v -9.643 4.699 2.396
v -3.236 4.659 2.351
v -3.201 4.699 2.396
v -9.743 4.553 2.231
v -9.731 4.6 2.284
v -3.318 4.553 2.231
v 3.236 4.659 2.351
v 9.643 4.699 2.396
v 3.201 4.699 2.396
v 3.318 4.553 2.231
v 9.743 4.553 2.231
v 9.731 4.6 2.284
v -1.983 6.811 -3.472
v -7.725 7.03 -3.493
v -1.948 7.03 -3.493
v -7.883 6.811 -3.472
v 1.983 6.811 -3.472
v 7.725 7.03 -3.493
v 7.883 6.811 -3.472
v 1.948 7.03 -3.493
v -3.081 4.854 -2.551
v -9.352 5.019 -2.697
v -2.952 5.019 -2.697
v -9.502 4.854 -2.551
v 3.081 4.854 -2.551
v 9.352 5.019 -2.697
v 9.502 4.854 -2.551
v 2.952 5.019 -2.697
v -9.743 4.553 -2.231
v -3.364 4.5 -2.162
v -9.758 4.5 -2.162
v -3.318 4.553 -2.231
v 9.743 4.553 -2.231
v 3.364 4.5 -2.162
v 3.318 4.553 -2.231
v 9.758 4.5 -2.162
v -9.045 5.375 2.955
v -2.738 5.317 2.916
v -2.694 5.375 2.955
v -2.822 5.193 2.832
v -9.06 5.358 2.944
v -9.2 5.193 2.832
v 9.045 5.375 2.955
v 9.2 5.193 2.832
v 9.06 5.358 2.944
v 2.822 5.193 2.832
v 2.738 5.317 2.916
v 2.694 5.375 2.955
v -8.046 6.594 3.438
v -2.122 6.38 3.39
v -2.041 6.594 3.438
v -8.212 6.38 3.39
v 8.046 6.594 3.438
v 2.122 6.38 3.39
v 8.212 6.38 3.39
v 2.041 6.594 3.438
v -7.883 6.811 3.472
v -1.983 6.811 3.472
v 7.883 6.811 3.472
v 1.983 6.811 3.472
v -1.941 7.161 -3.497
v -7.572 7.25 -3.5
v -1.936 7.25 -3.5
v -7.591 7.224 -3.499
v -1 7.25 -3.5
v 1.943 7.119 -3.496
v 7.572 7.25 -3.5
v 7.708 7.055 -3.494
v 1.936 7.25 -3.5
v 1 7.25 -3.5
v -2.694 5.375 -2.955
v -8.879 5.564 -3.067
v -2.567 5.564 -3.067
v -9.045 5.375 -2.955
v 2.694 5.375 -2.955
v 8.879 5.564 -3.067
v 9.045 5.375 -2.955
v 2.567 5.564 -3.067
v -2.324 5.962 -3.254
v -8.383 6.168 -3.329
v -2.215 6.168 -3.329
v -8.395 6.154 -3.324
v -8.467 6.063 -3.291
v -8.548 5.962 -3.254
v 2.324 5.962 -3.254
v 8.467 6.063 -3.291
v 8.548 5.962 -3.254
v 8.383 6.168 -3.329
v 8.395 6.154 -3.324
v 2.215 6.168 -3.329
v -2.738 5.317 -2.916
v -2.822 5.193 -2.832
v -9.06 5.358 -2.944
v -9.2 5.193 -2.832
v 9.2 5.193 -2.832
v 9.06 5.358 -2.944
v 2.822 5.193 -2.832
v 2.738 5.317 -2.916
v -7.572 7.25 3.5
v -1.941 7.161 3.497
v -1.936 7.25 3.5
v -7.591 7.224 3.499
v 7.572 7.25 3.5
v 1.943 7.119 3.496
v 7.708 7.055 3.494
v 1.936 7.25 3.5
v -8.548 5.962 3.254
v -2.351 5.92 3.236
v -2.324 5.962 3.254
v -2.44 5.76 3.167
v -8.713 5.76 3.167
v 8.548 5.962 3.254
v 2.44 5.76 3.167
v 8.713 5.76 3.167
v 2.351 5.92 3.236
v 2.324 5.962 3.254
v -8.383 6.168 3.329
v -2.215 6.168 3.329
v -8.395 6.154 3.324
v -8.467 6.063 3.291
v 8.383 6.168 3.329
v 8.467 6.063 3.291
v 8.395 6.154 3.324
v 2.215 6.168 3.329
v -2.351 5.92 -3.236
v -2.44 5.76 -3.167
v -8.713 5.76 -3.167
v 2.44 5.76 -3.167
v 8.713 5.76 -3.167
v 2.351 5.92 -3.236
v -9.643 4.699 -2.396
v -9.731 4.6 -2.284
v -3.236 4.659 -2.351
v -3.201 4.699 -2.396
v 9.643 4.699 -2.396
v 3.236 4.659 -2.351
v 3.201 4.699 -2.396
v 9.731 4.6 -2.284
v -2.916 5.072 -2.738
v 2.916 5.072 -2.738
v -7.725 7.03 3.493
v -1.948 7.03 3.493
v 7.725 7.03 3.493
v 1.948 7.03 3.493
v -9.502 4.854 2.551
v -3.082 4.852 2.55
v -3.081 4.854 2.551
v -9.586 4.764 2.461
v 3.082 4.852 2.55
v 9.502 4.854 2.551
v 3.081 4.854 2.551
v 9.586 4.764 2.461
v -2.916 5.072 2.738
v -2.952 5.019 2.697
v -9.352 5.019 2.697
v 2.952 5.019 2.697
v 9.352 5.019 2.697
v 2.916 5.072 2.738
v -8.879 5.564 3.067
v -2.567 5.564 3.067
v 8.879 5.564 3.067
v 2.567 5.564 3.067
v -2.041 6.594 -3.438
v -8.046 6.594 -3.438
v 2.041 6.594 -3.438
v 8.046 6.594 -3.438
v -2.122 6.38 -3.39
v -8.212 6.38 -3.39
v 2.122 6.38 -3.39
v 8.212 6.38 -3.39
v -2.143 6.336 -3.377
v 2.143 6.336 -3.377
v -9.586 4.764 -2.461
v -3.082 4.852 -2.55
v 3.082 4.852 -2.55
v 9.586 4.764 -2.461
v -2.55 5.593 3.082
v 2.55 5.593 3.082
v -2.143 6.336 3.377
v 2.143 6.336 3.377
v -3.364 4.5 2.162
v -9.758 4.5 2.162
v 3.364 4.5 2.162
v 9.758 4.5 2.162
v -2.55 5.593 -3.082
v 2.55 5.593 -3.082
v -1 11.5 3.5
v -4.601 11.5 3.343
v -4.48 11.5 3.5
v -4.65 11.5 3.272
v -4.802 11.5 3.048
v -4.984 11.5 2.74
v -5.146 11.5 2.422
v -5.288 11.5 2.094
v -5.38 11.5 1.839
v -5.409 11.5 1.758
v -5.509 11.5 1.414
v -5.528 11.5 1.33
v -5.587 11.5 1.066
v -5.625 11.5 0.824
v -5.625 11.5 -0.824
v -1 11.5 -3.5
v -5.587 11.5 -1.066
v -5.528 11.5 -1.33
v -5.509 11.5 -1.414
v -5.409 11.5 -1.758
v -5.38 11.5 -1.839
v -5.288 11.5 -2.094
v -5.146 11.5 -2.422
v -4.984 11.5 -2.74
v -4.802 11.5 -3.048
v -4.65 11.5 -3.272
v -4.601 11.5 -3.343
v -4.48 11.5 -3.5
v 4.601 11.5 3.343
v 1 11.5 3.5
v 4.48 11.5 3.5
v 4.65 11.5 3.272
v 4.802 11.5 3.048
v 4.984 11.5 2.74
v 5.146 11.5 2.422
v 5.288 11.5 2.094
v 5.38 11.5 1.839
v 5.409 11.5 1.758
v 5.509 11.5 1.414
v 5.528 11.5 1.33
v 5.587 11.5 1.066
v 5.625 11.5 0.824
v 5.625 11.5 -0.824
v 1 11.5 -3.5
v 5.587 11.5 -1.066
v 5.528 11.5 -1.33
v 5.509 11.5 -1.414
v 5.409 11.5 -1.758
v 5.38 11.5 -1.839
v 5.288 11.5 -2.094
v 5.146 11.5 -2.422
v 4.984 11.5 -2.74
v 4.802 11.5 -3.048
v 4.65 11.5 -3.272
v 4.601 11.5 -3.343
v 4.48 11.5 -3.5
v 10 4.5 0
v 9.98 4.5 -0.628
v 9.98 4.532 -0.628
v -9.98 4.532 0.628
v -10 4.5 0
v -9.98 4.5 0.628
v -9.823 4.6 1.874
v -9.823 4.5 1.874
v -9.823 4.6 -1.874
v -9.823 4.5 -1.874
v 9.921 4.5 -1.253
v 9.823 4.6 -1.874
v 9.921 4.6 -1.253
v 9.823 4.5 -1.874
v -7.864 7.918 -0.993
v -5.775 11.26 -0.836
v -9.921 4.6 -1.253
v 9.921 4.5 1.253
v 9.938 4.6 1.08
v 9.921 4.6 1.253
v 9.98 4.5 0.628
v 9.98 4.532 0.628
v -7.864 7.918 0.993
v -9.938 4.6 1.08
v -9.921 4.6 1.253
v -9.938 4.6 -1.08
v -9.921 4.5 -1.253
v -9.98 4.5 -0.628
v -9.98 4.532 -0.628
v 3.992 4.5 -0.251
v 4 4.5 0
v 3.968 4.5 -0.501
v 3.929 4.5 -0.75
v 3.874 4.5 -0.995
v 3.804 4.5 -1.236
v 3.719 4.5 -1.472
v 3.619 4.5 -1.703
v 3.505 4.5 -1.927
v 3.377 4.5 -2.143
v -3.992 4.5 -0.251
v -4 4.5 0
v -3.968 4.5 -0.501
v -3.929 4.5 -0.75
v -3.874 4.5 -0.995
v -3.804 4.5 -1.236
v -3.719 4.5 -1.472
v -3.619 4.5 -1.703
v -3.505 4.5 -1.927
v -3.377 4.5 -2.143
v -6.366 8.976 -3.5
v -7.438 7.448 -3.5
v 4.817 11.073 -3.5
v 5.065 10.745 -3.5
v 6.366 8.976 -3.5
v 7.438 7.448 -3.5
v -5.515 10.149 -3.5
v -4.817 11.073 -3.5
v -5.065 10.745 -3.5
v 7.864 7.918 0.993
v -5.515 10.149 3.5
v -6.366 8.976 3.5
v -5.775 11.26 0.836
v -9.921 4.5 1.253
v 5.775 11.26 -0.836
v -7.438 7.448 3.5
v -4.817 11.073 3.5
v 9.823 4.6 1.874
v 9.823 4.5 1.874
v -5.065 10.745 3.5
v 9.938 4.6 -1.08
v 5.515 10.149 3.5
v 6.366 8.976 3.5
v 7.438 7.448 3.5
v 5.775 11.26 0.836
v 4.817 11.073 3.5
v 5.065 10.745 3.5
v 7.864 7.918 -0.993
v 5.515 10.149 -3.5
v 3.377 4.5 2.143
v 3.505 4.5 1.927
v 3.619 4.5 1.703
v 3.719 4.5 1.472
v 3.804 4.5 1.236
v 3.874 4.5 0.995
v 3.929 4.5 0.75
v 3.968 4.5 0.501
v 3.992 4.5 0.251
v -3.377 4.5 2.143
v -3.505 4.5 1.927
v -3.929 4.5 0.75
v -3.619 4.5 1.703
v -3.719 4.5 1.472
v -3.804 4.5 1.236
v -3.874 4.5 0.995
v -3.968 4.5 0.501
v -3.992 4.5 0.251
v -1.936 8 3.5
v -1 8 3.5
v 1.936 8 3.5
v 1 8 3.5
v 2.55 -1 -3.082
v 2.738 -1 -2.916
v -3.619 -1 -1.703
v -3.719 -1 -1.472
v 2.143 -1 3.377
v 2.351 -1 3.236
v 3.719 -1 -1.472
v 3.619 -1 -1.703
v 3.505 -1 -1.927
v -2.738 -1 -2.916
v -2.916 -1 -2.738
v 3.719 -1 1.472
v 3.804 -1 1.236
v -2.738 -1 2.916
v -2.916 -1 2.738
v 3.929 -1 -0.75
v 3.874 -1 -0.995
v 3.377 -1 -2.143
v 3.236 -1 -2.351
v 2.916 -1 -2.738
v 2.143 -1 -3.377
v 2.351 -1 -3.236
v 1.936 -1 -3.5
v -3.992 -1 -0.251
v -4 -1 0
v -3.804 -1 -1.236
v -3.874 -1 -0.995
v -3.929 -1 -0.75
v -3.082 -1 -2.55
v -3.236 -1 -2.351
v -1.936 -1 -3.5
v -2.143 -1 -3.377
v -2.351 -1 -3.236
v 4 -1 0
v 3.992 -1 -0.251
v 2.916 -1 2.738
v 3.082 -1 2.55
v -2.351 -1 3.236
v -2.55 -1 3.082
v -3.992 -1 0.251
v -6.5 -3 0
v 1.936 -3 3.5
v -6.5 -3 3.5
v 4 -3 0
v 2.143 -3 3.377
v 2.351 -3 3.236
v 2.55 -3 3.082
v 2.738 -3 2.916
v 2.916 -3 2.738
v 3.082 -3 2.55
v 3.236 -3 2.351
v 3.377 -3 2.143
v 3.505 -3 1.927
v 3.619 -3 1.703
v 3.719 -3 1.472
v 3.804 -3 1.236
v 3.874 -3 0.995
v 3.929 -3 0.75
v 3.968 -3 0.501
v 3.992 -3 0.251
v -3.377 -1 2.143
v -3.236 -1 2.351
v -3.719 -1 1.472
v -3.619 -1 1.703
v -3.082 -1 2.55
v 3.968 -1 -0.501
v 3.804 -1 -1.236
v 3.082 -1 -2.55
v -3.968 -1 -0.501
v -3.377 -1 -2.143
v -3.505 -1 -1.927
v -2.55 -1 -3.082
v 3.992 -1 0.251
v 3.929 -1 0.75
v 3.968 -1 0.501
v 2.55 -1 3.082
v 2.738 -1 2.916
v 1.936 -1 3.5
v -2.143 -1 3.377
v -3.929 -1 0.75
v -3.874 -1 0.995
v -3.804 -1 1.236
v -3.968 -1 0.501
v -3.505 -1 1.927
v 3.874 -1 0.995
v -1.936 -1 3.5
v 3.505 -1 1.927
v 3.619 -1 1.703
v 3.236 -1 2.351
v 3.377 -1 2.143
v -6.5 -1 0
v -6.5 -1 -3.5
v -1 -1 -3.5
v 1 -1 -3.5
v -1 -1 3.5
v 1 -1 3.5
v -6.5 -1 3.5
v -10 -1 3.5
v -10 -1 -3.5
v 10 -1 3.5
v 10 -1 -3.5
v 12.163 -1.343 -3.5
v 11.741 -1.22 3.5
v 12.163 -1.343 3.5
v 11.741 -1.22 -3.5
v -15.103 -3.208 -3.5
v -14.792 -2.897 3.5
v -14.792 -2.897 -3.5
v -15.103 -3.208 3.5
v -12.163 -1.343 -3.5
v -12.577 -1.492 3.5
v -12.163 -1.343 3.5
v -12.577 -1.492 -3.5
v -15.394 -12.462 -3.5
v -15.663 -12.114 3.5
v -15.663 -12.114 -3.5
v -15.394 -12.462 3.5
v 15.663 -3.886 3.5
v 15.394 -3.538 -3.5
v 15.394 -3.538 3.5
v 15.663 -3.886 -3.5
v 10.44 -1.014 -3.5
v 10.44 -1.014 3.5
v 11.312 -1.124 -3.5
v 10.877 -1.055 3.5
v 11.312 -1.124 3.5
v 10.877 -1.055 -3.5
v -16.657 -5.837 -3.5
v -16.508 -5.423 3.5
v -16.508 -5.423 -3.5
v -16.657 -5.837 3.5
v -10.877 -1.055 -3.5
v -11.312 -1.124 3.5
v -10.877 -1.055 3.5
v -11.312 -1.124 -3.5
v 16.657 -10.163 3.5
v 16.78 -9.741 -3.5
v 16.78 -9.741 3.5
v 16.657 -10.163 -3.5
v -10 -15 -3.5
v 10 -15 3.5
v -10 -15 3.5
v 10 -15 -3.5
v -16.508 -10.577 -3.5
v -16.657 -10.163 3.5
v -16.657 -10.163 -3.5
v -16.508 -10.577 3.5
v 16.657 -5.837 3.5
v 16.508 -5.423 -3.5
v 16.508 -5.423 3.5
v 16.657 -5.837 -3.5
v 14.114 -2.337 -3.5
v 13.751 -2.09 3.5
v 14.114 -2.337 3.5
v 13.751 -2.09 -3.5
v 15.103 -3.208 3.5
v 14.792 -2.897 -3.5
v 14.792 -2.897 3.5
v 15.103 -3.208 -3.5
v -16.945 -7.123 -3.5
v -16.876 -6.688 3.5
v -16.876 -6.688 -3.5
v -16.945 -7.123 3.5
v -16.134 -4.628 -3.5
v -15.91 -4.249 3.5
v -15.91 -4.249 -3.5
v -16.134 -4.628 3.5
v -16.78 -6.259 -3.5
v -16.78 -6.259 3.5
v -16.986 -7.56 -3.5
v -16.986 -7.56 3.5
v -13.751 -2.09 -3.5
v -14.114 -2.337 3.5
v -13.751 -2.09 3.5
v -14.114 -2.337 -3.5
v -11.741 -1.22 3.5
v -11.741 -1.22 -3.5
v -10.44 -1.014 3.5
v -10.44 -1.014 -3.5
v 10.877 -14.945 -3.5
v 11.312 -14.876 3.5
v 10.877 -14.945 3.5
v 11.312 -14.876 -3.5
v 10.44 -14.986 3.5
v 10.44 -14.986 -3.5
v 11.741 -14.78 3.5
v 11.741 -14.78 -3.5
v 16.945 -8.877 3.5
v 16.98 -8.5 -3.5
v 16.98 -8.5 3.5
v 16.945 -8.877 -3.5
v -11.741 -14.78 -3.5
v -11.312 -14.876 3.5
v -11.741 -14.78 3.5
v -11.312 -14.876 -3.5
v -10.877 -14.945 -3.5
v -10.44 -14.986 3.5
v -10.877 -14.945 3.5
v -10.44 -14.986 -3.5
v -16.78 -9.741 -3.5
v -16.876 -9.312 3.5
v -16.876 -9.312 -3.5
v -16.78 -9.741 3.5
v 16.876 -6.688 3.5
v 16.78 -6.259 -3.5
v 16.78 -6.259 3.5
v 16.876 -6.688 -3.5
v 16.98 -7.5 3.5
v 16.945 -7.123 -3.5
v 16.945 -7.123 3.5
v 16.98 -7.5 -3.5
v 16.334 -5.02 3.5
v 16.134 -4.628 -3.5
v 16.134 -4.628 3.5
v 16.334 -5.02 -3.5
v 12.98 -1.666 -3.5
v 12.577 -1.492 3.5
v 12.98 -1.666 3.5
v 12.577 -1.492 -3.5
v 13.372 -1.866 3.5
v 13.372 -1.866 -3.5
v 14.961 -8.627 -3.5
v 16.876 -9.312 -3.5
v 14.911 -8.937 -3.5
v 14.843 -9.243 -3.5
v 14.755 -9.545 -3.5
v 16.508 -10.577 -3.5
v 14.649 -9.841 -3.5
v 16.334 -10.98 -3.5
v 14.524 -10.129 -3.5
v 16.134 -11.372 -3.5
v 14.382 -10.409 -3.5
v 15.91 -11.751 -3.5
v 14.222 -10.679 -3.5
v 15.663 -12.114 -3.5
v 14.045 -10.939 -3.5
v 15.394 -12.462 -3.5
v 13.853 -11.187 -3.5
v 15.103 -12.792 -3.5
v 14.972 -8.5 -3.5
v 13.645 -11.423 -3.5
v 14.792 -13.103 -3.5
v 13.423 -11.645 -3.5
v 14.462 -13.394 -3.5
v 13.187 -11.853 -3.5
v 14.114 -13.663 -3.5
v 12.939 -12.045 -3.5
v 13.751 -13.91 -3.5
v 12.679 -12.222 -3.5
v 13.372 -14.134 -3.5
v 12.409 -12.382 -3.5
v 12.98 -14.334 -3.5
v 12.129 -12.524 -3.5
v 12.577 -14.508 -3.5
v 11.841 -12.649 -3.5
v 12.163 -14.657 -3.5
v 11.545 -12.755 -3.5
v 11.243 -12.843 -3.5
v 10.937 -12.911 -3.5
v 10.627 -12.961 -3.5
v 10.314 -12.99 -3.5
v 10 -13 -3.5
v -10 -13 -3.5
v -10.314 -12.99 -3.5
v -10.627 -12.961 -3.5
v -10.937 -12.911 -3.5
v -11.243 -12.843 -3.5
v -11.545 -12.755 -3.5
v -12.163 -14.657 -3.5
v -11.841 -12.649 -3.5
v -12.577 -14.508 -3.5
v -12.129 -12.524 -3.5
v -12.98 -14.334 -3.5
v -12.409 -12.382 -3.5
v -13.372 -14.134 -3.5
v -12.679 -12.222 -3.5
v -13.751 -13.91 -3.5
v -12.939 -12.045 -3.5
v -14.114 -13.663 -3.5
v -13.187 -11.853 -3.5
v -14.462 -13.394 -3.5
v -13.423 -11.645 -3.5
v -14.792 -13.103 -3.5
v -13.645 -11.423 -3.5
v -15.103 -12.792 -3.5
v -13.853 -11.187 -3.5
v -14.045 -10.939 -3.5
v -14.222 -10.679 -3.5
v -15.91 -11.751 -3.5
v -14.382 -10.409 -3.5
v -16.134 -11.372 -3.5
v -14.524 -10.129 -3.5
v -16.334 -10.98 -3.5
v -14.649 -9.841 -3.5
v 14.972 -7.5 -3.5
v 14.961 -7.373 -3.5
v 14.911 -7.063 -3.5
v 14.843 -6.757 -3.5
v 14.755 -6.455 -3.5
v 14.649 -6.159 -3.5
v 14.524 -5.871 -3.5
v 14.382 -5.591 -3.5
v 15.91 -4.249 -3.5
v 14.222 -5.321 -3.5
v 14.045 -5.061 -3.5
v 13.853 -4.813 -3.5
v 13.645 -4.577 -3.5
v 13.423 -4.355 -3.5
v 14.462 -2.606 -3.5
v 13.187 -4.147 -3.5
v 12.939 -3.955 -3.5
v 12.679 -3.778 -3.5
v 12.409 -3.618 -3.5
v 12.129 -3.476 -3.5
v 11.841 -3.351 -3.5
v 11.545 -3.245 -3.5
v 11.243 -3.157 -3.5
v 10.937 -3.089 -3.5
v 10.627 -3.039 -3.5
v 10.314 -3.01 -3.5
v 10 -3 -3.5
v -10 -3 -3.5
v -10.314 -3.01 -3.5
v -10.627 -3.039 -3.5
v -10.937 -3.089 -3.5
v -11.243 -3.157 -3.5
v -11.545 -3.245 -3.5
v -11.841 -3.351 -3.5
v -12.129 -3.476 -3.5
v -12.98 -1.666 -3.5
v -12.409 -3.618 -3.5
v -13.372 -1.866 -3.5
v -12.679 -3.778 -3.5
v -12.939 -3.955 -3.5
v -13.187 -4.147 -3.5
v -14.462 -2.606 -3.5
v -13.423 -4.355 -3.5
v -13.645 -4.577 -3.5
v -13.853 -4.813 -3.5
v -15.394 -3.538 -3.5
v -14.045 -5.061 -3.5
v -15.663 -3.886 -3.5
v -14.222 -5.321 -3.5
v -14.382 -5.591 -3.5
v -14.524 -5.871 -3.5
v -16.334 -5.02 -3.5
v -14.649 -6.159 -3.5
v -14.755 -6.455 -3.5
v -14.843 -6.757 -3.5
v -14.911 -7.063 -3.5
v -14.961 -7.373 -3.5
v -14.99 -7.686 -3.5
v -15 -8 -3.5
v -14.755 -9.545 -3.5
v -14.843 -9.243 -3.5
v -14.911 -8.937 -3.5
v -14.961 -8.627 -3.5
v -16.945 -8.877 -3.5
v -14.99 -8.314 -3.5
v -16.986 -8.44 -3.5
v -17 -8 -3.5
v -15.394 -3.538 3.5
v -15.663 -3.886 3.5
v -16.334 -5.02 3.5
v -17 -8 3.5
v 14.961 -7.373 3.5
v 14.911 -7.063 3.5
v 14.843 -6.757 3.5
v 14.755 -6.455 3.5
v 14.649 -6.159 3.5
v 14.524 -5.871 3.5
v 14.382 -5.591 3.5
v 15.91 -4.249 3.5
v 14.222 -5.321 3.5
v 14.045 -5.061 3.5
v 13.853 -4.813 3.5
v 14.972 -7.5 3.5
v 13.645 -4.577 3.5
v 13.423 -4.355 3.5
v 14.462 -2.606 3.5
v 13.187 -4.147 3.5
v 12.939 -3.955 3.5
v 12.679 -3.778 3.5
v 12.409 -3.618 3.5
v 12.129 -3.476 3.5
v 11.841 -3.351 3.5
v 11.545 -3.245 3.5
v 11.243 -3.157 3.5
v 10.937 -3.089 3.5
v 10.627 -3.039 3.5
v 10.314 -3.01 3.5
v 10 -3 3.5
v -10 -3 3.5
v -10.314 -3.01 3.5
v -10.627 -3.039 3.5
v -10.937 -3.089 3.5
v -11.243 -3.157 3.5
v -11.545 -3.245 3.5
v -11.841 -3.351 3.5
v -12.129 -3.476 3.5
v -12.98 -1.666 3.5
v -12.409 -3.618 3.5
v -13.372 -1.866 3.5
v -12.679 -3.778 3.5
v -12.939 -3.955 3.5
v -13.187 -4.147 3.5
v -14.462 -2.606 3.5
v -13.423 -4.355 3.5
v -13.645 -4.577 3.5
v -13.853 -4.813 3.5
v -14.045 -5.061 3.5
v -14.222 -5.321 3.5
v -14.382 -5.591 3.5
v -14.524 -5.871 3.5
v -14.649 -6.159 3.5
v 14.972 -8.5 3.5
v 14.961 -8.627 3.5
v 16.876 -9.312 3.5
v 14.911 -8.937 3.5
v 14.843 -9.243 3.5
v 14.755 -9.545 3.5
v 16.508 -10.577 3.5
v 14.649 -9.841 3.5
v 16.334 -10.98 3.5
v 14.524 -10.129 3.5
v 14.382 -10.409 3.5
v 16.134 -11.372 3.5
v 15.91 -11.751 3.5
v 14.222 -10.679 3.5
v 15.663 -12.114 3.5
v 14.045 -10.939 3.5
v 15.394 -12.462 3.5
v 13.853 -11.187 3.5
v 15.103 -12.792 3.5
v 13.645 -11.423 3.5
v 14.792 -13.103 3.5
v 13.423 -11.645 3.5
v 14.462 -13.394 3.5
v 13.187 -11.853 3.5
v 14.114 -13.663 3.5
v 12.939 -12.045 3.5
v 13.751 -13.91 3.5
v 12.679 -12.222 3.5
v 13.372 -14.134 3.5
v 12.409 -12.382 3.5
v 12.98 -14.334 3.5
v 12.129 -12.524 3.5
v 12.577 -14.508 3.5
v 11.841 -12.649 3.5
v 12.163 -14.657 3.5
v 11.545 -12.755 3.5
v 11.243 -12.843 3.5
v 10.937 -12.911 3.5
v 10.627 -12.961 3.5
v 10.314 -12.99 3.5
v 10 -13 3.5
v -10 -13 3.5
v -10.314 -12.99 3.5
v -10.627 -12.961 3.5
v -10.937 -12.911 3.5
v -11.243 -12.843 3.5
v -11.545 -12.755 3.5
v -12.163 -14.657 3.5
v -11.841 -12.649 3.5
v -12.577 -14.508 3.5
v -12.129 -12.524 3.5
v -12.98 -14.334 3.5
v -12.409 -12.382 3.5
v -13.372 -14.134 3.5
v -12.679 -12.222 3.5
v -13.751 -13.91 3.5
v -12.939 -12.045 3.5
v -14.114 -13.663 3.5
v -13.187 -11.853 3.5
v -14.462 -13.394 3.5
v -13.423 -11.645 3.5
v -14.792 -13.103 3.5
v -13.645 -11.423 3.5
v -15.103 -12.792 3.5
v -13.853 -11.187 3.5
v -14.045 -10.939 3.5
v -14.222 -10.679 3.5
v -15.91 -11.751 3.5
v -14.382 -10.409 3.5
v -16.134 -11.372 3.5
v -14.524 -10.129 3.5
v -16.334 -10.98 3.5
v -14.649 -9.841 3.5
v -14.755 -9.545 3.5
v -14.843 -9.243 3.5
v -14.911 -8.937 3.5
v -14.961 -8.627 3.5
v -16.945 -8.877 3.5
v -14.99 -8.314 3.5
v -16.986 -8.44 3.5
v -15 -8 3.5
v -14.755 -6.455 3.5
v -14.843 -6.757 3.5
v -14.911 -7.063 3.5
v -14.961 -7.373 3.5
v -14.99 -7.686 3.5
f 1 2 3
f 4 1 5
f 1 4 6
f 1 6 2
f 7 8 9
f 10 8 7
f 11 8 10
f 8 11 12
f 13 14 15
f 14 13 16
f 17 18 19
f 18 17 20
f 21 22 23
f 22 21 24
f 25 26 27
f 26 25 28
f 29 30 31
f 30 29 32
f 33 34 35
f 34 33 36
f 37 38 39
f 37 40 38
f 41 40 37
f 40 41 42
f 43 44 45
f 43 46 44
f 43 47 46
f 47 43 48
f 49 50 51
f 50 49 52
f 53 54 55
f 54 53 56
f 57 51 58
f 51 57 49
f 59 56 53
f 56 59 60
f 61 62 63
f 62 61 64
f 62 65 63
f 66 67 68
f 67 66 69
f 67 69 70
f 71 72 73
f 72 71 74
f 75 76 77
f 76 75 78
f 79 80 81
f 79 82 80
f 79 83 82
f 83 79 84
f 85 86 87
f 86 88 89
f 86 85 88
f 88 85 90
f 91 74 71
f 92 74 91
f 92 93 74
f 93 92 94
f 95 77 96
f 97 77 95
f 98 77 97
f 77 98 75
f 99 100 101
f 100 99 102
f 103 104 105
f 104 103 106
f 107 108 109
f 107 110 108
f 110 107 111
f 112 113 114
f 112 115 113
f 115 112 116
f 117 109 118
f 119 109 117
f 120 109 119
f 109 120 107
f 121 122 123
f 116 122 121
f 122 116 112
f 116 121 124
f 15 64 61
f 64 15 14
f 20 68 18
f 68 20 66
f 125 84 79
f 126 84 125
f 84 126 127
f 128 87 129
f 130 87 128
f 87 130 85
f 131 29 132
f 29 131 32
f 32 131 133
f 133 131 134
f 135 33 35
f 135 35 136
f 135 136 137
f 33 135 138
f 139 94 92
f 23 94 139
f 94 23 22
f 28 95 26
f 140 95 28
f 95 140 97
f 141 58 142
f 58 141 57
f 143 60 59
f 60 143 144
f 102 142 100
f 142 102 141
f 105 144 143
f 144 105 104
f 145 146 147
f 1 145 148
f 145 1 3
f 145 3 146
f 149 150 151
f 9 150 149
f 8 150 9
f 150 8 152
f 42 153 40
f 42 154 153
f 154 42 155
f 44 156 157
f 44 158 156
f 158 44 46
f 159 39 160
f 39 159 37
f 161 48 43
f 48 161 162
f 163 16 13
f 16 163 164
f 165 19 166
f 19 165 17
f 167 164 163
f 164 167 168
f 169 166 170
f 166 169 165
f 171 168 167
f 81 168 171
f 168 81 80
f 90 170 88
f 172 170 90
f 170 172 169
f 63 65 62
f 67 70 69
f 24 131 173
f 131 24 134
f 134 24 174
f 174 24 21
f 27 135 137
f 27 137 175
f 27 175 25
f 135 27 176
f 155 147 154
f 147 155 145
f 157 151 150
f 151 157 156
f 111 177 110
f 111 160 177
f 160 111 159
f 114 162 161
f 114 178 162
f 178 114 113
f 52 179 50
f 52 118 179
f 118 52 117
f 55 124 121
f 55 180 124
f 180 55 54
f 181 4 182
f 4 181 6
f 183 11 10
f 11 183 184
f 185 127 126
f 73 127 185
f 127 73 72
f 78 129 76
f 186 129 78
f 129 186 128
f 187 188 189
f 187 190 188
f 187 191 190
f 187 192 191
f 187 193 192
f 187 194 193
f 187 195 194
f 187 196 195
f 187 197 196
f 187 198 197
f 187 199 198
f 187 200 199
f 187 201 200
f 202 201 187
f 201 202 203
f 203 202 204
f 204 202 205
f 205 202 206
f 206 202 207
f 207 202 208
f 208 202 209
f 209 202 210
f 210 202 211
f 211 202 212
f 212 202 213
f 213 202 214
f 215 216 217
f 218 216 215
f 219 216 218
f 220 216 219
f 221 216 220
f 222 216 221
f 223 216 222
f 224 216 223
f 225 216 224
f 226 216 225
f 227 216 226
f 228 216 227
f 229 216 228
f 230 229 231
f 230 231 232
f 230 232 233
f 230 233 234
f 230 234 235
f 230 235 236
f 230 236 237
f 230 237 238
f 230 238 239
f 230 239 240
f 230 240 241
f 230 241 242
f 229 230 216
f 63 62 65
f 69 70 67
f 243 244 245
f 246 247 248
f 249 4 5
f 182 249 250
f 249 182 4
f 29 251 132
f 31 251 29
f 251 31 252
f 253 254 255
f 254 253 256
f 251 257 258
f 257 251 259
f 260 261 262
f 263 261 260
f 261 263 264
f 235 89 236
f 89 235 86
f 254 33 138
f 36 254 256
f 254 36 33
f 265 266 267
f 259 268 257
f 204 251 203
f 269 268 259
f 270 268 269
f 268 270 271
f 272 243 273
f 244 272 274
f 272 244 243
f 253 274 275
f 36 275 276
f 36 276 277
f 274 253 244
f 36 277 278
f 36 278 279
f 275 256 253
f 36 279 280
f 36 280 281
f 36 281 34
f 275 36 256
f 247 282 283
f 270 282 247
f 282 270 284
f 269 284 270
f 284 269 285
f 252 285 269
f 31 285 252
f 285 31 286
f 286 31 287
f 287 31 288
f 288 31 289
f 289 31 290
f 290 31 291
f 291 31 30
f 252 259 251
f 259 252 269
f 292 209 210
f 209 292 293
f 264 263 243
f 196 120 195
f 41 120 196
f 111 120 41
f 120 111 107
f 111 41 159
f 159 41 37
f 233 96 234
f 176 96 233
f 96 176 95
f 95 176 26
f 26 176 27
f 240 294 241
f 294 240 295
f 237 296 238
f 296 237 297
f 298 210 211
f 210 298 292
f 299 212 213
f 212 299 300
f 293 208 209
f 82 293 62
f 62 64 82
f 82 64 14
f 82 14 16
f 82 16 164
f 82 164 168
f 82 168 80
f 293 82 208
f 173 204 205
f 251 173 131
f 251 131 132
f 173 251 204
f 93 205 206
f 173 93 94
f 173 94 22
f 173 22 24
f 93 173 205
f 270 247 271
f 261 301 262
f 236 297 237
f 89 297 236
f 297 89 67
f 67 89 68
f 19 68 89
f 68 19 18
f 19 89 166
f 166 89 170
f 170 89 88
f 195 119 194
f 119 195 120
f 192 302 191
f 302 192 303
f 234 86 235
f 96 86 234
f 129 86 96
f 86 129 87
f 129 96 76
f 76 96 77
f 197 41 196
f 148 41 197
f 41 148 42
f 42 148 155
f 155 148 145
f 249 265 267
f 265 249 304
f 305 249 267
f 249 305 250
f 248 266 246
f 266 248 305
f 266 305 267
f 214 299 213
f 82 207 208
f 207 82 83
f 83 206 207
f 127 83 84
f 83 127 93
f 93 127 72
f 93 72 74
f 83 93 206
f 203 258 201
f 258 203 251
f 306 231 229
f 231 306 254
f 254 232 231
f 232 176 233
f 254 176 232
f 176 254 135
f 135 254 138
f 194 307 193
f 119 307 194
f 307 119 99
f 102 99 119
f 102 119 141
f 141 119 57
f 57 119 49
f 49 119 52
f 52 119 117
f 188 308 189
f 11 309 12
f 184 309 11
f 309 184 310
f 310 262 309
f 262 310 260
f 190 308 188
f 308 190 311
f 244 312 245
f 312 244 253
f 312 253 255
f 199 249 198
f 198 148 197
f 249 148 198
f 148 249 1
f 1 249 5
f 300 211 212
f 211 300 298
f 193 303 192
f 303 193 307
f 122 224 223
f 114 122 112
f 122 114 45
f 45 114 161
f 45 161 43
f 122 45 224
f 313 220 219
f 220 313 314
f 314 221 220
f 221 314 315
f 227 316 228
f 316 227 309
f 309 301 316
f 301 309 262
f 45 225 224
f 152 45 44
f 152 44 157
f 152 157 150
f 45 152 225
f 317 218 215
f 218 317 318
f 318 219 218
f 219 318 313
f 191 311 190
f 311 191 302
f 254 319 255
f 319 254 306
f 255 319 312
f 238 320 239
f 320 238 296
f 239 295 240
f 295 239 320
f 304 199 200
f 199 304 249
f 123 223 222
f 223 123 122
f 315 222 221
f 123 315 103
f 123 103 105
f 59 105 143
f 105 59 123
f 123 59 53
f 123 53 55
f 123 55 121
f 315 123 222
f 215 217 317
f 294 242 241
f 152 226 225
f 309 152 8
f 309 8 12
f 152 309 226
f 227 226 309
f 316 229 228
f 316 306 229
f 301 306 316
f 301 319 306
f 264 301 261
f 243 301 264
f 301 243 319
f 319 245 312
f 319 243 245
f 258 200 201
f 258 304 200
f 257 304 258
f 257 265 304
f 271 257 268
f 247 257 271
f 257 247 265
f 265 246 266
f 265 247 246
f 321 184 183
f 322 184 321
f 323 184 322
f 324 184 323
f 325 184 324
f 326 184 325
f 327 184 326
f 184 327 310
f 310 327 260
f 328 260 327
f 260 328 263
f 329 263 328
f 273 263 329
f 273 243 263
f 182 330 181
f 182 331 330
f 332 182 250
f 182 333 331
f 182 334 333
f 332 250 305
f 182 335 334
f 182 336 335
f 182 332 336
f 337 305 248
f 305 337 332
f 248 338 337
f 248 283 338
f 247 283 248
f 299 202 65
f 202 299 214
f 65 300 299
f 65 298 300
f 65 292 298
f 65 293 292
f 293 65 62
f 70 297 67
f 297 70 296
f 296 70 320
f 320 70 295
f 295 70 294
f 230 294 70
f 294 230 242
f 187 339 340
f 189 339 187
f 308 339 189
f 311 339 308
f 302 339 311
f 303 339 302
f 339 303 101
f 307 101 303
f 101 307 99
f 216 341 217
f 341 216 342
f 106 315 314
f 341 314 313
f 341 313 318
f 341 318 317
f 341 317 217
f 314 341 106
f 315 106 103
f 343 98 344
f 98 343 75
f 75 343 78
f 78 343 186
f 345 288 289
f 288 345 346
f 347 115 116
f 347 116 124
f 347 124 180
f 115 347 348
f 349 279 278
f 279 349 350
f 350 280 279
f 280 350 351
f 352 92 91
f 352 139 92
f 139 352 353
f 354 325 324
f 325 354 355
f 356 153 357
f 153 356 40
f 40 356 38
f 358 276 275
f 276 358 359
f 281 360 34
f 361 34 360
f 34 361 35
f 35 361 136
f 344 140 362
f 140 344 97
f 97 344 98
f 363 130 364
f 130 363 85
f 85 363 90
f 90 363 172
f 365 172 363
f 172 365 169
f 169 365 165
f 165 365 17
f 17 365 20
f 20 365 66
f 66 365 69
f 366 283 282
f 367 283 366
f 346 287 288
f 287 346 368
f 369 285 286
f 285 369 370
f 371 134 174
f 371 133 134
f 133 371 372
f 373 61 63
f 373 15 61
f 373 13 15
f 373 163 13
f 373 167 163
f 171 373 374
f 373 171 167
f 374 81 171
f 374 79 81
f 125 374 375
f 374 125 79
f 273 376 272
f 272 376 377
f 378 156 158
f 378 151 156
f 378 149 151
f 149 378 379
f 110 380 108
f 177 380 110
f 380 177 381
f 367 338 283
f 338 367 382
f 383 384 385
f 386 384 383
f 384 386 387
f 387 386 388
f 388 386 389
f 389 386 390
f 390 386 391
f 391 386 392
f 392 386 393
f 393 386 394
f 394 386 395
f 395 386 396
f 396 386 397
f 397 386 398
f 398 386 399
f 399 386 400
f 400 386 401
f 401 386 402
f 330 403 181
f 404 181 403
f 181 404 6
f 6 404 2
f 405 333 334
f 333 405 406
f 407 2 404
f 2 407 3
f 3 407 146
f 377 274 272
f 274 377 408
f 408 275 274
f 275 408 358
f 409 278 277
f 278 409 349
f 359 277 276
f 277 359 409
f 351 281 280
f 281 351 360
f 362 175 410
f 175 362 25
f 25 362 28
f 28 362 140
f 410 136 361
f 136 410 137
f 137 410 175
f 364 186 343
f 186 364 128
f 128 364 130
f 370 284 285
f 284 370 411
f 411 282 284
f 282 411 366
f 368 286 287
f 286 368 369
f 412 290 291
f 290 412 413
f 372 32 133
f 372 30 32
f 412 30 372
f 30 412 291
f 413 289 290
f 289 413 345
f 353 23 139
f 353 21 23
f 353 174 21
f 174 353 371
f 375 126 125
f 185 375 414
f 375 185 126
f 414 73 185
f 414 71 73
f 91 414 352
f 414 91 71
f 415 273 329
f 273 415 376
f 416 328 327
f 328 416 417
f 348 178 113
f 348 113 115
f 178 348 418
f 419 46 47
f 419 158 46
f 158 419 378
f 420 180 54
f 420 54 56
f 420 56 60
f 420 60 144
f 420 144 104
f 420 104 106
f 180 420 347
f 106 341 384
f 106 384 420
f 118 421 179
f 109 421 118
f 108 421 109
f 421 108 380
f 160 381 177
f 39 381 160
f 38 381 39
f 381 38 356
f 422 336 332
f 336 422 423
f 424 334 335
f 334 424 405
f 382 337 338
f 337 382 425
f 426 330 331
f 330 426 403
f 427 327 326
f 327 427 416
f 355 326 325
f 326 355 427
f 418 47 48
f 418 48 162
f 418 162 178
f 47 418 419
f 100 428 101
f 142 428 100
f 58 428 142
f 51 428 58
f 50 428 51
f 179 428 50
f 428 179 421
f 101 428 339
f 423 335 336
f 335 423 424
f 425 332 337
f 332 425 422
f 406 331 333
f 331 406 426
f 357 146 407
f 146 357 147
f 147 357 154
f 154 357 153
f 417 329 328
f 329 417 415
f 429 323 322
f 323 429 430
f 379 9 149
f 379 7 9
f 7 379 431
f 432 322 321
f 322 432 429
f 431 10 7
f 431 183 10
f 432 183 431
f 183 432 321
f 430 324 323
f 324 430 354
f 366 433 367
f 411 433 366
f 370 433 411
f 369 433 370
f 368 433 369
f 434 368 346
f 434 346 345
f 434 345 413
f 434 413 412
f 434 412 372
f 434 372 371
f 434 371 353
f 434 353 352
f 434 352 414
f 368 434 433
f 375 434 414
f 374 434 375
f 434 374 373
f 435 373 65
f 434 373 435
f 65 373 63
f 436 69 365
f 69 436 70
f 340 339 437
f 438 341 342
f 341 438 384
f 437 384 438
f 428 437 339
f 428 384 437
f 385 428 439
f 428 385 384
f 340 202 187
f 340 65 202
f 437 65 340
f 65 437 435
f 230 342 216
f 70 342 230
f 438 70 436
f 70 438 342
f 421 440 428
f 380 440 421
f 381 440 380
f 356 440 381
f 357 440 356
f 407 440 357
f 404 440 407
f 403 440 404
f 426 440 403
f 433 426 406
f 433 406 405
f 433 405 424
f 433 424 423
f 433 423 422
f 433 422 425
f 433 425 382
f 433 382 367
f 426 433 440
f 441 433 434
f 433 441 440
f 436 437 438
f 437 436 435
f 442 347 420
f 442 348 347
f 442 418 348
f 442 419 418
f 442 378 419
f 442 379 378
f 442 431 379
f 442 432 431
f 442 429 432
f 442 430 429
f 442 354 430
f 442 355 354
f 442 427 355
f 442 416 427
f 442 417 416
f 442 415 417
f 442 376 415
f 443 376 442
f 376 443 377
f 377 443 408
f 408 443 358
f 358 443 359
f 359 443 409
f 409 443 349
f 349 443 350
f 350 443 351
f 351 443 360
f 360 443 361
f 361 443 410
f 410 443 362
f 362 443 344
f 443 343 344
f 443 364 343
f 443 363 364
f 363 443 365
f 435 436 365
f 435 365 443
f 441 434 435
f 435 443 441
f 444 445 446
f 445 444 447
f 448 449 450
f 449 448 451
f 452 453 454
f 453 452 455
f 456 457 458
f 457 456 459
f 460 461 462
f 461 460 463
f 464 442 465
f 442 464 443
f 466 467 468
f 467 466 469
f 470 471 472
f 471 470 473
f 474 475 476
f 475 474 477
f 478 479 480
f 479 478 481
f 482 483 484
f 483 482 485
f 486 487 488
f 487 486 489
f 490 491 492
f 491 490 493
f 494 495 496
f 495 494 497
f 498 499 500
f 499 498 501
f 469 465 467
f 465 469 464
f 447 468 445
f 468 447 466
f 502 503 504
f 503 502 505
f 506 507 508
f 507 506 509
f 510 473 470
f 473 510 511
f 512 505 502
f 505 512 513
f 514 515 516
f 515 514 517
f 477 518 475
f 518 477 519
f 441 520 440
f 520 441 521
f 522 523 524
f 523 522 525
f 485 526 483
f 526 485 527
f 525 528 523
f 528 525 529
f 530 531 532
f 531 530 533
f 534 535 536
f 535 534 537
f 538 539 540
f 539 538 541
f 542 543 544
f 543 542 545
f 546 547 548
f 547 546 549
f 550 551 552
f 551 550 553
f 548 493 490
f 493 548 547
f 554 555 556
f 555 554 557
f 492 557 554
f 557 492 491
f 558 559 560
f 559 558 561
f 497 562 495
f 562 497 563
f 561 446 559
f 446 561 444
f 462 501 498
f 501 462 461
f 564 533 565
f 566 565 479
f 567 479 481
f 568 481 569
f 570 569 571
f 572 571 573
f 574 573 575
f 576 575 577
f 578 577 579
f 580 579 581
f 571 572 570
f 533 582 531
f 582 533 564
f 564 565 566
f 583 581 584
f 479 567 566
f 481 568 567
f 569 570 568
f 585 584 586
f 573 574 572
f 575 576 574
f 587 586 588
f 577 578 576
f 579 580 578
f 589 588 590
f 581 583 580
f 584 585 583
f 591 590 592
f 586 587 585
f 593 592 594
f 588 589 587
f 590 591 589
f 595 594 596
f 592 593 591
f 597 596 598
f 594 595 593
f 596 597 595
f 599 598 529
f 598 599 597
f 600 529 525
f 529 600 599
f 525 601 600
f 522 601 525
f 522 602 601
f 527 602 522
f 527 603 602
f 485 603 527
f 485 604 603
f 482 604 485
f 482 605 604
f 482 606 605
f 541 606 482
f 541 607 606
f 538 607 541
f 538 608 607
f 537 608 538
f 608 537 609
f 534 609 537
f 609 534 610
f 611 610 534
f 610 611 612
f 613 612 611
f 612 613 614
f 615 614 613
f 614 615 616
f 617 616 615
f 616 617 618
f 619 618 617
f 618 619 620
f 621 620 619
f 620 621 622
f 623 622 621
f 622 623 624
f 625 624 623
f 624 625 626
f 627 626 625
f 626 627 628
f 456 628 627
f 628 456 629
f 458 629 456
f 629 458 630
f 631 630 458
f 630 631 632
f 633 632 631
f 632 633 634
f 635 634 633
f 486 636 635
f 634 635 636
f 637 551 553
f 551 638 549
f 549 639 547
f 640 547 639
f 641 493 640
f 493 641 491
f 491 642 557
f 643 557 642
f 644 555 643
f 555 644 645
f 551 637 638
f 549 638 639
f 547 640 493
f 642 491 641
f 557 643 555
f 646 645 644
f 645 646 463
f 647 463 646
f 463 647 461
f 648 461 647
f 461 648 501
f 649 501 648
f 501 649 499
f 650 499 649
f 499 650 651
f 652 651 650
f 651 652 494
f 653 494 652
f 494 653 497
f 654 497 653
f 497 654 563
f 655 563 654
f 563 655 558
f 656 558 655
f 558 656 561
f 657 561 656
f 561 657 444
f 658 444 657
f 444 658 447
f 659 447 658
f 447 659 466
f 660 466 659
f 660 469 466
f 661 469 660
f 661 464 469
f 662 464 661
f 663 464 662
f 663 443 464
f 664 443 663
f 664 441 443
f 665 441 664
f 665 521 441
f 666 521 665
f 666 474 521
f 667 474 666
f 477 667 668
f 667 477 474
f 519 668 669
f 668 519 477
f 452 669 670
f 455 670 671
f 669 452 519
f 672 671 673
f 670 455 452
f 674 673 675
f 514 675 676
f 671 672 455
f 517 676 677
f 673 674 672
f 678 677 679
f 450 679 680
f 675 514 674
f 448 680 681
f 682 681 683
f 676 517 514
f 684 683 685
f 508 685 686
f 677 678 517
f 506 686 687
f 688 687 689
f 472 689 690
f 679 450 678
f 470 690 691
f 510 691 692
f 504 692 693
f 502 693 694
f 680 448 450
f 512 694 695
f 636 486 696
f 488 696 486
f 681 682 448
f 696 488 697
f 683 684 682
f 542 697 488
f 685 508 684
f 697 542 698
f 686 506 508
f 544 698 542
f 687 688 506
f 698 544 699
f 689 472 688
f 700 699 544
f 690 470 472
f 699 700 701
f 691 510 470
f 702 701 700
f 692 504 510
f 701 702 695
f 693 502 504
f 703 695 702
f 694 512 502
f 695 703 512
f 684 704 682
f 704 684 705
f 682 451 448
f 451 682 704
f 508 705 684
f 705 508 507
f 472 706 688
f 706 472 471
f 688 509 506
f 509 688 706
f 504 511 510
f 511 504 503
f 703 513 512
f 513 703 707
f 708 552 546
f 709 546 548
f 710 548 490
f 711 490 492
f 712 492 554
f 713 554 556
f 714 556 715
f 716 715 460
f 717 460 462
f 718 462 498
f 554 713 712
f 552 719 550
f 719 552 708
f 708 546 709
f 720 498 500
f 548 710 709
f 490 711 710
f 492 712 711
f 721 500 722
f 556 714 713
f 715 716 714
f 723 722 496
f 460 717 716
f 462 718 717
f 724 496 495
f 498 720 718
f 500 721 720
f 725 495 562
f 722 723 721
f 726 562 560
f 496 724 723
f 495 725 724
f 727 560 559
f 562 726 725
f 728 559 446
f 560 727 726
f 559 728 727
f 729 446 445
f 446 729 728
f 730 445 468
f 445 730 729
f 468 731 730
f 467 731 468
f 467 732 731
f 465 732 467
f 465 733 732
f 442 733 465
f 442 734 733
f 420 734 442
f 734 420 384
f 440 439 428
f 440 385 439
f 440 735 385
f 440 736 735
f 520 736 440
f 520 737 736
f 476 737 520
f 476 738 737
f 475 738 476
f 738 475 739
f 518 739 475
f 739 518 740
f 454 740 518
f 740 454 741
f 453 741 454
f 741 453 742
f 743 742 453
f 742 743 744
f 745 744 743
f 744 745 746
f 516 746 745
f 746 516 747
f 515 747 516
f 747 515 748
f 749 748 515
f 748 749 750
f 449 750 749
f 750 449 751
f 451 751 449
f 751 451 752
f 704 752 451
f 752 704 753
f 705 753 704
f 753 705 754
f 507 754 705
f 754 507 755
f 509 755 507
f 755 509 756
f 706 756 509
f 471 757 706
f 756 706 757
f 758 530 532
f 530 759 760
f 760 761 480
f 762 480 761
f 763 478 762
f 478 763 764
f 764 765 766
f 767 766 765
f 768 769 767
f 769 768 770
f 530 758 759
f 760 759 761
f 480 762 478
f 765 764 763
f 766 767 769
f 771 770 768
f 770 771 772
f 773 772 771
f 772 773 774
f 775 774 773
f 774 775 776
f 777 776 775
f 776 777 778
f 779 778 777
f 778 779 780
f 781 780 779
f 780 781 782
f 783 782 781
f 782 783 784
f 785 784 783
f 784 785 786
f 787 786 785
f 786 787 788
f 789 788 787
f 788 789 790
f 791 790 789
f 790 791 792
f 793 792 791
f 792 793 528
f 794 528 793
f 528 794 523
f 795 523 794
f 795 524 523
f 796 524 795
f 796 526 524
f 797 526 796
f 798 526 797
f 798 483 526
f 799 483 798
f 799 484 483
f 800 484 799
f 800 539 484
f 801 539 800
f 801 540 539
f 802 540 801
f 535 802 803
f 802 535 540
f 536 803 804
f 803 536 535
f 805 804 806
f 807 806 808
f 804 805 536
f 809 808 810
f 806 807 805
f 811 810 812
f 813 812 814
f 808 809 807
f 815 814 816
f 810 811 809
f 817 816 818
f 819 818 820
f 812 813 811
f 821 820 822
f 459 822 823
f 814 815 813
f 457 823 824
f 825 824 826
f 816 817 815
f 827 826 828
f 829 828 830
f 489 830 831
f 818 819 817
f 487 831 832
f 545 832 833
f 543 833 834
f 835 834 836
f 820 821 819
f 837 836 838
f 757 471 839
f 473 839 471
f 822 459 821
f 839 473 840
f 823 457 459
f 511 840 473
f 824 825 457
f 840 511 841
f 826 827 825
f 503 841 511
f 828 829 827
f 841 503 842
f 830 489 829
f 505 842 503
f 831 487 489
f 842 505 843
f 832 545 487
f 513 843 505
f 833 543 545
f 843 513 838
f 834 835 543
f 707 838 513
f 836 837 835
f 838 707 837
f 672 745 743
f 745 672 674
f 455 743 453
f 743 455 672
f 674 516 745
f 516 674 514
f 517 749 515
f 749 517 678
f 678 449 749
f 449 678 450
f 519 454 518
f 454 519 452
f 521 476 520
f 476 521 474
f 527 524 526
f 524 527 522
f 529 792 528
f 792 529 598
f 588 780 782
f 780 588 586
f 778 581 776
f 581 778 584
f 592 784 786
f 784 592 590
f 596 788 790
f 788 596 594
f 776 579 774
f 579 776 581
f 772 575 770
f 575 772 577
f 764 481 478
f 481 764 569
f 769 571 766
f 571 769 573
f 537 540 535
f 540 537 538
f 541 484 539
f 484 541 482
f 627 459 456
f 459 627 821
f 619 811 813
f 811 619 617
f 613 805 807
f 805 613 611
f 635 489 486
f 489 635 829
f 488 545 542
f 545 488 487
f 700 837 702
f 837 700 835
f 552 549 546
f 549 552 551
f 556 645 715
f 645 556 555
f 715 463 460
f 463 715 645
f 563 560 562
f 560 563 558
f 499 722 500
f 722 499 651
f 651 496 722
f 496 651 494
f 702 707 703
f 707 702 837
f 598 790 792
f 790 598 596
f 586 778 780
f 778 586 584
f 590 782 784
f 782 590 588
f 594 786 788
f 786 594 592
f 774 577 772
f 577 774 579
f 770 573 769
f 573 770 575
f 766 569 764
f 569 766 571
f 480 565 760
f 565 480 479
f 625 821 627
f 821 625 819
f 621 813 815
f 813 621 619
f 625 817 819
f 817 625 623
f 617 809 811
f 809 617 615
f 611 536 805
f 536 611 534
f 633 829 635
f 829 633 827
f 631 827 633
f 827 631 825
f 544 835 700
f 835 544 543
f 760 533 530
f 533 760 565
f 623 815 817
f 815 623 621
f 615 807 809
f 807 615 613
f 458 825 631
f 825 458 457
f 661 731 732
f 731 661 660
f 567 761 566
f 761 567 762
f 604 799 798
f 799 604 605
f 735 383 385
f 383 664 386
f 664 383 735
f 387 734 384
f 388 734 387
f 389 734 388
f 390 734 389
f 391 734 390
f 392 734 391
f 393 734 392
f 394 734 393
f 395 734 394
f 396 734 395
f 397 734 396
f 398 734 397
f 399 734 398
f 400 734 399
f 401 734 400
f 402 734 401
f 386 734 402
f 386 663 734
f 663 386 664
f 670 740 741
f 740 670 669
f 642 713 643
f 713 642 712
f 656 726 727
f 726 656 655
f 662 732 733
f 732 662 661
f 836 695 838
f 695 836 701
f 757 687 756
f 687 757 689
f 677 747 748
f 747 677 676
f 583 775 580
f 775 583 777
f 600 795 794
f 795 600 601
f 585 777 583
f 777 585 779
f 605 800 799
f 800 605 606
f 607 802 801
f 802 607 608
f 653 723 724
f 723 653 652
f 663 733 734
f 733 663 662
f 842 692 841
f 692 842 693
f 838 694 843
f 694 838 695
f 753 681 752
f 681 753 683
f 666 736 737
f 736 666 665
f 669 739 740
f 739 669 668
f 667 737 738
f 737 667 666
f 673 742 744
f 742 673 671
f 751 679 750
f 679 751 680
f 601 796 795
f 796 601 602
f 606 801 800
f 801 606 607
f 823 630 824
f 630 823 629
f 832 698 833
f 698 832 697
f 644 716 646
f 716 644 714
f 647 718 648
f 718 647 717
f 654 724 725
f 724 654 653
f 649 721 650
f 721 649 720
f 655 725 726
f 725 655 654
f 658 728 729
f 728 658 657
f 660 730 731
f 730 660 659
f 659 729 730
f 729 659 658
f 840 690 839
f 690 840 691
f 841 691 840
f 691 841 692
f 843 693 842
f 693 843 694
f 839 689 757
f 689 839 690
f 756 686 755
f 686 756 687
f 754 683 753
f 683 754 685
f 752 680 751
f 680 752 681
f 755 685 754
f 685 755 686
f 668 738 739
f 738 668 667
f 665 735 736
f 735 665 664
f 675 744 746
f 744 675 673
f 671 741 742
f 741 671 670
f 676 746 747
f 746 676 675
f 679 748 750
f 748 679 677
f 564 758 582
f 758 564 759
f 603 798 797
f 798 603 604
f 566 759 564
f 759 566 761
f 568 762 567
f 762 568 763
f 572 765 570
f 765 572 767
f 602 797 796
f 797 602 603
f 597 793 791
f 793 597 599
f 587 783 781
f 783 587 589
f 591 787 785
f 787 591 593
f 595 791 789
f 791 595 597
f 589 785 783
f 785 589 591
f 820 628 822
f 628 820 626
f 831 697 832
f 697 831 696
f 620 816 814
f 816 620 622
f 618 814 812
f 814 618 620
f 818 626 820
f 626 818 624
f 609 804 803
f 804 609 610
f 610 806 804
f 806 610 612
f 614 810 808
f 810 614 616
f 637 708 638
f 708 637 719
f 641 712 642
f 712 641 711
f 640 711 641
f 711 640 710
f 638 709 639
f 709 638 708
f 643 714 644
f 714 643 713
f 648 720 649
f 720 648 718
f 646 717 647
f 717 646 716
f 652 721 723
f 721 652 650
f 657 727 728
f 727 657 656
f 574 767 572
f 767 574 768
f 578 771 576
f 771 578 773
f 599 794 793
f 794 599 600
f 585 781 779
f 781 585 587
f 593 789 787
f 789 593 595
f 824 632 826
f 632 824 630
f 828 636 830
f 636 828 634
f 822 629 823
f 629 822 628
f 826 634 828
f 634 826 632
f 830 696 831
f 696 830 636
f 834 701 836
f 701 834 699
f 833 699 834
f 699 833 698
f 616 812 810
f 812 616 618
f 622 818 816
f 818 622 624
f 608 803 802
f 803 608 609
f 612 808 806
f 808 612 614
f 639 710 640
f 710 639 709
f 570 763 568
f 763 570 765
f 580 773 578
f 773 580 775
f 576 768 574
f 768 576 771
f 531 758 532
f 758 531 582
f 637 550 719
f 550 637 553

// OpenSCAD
$fn=100;
/*
    Parametric Cable Hooks For Tslot Mounting
    By Brian Khuu (2020)
    
    Got a desk with tslot rails, would be nice to mount cable on it...
    
    Inspired by https://www.thingiverse.com/thing:2676595 "V-Slot Cable Clips by pekcitron November 30, 2017"
*/

/* [Tslot Spec] */
// CenterDepth
tslot_centerdepth = 5+0.5;
// CenterWidth
tslot_centerwidth = 8; // Gap to slot the clip though
// For the wedge... its based on a 4040mm Tslot... so may need to modify polygon() in this script

/* [Hook Spec] */
// Spacing between centerpoint
hookcenterspacing=10;
// Hook Diameter
hookdia=10;
// Hook Flange
hookflange=3;
// Hook Width
hookwidth=7;
// Hook Thickness
hookthickness=2;

/* [Tslot Model] */
model_slot_gap = 10;
model_slot_side = 15;

translate([0, -1, 0])
union()
{
    difference()
    {
        union()
        {
            // Tslot Mount Inner
            translate([0, tslot_centerdepth, 0])
                intersection()
                {
                    heightlim=7;
                    linear_extrude(height = hookwidth, center = true)
                        polygon(points=[[-10,0],[-5,8],[5,8],[10,0]]);
                    rotate([-90,0,0])
                        intersection()
                        {
                            hull()
                            {
                                translate([0,0,0]) cylinder(r=10, h=0.1);
                                translate([0,0,8]) cylinder(r=5, h=0.1);
                            }
                            union()
                            {
                                translate([0,0,heightlim/2+tslot_centerdepth/4]) 
                                    cube([20,20,heightlim-tslot_centerdepth/2], center = true);
                                intersection()
                                {
                                    rotate([0,90,0])
                                        translate([-tslot_centerdepth/2,0,0]) 
                                        cylinder(r=hookwidth/2, h=20, center = true);
                                    cube([20,20,hookwidth+1], center = true);
                                }
                            }
                        }
                }

            // tslot mount shaft
            translate([0, -hookthickness, 0])
            rotate([-90,0,0])
                intersection()
                {
                    cheight = tslot_centerdepth+hookthickness+hookwidth/2;
                    union()
                    {
                        cylinder(r=tslot_centerwidth/2, h=cheight);
                        translate([-hookwidth/2+1, 0, hookthickness-hookthickness/2])
                            cube([tslot_centerwidth,hookwidth,hookthickness], center=true);
                    }
                    translate([0, 0, cheight/2])
                        cube([tslot_centerwidth+10, hookwidth, cheight], center=true);
                }
        }
        
        //
        translate([0, 100/2, 0])
            cube([2,100,100], center=true);

    }
 
    // Hook
    translate([0, -hookdia/2-hookthickness, 0])
    union()
    {
        difference()
        {
            hull()
            {
                translate([hookdia/2+hookcenterspacing/2,0,0])
                    cylinder(r=hookdia/2+hookthickness, h=hookwidth, center=true);
                translate([-hookdia/2-hookcenterspacing/2,0,0])
                    cylinder(r=hookdia/2+hookthickness, h=hookwidth, center=true);
            }
            hull()
            {
                translate([hookdia/2+hookcenterspacing/2,0,0])
                    cylinder(r=hookdia/2, h=hookwidth+1, center=true);
                translate([-hookdia/2-hookcenterspacing/2,0,0])
                    cylinder(r=hookdia/2, h=hookwidth+1, center=true);
            }
            translate([hookdia+hookdia/2+hookthickness/2,0,0])
                cube([hookthickness+1,1,hookwidth+2], center=true);
        }
    }
}

%translate([model_slot_side/2+model_slot_gap/2,0,0]) cube([model_slot_side,0.1,100], center=true);
%translate([-model_slot_side/2-model_slot_gap/2,0,0]) cube([model_slot_side,0.1,100], center=true);
